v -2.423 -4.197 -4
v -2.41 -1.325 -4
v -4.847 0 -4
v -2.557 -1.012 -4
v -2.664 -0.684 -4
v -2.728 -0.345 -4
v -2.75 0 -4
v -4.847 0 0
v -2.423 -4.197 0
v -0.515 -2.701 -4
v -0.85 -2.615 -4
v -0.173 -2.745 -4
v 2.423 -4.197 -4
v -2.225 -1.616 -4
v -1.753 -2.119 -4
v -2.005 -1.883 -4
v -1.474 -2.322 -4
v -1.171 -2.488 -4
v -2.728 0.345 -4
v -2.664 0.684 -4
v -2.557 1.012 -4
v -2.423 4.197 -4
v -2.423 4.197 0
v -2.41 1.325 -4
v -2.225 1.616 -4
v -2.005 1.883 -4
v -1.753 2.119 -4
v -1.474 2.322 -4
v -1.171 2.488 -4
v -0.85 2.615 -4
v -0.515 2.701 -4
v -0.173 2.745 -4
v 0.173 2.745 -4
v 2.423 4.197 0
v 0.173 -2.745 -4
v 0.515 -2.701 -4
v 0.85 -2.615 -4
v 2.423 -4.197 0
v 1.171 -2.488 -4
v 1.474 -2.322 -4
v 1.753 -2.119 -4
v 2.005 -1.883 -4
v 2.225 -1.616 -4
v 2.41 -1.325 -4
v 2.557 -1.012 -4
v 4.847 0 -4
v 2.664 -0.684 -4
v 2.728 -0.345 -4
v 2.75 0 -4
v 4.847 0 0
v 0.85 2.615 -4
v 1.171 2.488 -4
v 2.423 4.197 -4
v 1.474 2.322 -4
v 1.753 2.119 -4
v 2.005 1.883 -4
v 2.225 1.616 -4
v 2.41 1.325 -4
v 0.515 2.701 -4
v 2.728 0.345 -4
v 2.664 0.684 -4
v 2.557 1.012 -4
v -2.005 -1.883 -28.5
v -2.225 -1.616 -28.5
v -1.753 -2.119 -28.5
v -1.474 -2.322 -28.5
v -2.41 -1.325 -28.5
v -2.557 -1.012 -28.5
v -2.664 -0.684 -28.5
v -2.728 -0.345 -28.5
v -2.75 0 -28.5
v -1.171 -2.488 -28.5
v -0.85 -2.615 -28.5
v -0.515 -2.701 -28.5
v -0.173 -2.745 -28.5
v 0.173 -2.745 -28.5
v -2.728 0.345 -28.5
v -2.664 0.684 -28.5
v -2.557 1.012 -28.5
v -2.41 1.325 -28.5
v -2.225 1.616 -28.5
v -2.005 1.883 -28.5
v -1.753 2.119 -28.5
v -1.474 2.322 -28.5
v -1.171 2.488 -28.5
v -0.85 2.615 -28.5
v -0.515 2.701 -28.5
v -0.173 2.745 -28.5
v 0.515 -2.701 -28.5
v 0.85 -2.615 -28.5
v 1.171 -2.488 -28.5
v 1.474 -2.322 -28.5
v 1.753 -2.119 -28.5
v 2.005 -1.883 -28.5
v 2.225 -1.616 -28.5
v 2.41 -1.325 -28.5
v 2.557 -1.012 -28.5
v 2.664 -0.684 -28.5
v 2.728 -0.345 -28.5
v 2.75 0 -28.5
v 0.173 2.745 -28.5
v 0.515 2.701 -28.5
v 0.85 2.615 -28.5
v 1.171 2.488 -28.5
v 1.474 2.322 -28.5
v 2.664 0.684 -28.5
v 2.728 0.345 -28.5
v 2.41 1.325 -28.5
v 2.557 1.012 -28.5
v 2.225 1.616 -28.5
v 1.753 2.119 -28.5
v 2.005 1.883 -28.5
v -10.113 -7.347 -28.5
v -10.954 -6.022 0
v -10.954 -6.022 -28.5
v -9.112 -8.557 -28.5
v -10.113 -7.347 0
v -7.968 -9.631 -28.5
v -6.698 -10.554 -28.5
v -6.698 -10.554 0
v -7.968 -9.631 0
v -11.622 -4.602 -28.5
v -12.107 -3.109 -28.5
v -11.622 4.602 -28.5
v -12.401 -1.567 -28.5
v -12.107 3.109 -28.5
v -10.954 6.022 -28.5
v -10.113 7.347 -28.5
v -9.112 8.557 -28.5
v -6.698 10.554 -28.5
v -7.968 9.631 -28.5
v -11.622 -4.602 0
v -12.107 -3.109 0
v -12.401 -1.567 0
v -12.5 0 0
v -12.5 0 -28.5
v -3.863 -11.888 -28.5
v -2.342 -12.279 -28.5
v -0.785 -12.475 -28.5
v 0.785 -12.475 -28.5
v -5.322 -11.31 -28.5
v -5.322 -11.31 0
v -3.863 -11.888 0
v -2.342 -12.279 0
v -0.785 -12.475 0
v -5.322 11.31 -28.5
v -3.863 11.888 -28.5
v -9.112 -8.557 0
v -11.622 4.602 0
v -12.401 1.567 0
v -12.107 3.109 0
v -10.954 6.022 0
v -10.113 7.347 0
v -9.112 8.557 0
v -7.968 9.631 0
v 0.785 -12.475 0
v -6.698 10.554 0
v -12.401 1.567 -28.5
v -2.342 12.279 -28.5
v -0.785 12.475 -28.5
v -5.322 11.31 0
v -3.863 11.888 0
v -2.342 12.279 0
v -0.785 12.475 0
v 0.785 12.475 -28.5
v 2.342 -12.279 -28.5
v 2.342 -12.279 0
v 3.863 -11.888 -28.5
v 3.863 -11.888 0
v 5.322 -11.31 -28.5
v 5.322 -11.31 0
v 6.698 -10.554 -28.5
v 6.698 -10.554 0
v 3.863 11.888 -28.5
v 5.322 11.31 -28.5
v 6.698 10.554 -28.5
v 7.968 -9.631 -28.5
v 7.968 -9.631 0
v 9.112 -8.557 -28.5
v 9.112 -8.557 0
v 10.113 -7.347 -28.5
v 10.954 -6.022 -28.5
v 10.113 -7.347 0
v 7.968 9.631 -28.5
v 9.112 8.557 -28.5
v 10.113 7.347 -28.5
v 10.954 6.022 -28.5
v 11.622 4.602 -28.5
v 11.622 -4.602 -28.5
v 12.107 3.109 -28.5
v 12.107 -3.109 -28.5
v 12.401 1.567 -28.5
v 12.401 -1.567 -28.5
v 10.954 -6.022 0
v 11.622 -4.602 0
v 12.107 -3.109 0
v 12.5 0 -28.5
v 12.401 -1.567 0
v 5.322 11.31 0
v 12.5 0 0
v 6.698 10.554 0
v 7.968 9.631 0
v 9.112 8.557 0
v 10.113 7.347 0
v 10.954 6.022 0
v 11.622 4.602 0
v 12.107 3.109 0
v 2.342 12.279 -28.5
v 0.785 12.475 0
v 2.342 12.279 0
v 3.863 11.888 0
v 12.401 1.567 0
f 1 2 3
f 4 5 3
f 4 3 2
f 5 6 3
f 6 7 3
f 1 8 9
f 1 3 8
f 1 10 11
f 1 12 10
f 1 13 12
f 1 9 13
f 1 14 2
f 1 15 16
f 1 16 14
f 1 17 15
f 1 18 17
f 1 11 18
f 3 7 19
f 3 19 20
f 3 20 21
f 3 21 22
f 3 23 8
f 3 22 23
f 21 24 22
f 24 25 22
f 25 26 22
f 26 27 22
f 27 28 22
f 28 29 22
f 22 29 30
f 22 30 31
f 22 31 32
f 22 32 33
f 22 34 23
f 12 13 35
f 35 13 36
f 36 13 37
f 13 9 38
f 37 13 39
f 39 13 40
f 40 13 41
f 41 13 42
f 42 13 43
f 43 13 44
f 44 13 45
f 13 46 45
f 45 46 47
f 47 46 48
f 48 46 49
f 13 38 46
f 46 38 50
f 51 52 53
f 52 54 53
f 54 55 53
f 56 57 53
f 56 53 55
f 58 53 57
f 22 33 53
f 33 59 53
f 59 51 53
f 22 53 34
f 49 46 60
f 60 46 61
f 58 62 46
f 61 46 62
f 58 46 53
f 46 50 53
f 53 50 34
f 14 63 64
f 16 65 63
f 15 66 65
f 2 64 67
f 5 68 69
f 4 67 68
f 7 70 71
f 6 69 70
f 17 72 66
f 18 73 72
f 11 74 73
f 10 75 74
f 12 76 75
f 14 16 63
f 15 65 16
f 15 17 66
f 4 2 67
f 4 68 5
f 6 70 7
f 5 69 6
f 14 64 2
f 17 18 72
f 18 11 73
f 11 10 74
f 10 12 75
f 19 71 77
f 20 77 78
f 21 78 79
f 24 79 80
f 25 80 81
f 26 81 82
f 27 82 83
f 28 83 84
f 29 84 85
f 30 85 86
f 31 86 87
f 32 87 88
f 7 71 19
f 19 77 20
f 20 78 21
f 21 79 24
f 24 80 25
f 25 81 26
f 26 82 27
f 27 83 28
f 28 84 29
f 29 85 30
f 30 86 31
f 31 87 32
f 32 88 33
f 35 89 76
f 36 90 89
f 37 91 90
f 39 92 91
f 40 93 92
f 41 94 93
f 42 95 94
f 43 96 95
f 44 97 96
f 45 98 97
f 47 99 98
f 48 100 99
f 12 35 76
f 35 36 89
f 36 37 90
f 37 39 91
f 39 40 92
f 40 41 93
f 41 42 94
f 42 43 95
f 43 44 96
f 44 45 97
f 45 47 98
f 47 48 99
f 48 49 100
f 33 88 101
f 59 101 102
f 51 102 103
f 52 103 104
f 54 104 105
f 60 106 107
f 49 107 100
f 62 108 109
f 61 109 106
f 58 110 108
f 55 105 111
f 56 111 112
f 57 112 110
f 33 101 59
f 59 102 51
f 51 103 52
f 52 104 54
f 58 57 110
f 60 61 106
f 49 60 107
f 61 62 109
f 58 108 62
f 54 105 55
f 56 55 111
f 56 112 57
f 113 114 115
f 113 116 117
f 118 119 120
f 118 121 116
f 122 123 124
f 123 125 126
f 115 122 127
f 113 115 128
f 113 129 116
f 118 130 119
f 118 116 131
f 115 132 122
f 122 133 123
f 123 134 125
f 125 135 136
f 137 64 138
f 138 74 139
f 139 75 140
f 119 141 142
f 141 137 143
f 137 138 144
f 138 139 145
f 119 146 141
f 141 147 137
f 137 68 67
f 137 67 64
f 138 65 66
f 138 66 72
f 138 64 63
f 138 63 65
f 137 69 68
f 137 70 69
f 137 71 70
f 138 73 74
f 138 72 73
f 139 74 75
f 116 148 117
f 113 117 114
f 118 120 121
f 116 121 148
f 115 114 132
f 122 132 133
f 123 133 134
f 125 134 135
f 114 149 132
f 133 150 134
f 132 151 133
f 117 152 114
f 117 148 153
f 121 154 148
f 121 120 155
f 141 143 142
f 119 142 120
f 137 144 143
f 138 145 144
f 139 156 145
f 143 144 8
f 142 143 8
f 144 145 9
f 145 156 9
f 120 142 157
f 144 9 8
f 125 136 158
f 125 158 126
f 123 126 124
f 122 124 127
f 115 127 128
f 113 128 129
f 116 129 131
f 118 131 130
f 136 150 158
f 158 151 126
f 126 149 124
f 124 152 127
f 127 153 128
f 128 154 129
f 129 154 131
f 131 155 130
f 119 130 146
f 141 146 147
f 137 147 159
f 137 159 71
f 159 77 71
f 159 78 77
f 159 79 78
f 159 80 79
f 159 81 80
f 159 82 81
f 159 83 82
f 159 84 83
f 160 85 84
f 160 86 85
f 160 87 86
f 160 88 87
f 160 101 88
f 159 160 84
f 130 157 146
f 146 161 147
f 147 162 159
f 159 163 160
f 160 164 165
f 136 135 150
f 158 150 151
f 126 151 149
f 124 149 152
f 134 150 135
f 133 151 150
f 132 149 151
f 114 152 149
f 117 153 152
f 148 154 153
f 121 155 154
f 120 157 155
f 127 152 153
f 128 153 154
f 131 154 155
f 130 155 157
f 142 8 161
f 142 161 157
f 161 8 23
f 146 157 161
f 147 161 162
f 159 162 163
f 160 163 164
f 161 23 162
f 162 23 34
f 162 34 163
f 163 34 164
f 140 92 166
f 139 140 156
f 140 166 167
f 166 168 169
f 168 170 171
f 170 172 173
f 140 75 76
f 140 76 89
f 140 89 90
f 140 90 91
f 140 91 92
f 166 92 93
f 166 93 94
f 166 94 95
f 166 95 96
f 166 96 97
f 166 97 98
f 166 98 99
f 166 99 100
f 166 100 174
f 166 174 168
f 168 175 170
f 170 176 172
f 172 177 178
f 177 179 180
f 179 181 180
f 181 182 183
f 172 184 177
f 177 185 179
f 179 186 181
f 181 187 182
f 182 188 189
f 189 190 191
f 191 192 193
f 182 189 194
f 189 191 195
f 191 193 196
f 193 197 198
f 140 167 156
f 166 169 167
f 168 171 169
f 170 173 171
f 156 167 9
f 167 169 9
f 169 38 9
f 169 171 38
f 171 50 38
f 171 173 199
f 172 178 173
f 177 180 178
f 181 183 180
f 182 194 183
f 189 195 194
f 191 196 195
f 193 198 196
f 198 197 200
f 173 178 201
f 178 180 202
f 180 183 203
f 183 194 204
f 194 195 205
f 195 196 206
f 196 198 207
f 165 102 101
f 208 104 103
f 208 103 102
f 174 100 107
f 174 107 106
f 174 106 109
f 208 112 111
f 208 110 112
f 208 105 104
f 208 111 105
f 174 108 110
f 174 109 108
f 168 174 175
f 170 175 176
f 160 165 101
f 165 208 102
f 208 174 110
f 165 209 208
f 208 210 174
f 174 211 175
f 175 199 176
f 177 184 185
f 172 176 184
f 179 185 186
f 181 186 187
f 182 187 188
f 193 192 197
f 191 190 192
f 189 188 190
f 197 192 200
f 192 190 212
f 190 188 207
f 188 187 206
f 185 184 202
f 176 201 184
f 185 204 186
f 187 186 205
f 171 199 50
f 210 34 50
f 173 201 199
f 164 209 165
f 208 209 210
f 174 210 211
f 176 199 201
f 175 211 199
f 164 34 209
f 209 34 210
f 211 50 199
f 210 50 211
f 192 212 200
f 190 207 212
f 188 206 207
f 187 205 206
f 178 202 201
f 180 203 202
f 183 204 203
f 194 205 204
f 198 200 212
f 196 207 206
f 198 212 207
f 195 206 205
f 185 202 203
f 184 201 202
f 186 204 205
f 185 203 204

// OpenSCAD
$fn = 50;

difference() {
	union() {
		translate(v = [0, 0, -28.5]) {
			cylinder(h = 28.5, r = 12.5);
		}
	}
	union() {
		translate(v = [0, 0, 0]) {
			rotate(a = [0, 0, 0]) {
				difference() {
					union() {
						translate(v = [0, 0, -4]) {
							linear_extrude(height = 4) {
								polygon(points = [[4.8468, 0.0], [2.4234000000000004, 4.197451927062417], [-2.423399999999999, 4.197451927062417], [-4.8468, 5.935618106107392e-16], [-2.423400000000002, -4.197451927062416], [2.423399999999997, -4.197451927062419]]);
							}
						}
					}
					union();
				}
			}
		}
		#translate(v = [0, 0, -100.0]) {
			cylinder(h = 200, r = 2.75);
		}
	}
}
